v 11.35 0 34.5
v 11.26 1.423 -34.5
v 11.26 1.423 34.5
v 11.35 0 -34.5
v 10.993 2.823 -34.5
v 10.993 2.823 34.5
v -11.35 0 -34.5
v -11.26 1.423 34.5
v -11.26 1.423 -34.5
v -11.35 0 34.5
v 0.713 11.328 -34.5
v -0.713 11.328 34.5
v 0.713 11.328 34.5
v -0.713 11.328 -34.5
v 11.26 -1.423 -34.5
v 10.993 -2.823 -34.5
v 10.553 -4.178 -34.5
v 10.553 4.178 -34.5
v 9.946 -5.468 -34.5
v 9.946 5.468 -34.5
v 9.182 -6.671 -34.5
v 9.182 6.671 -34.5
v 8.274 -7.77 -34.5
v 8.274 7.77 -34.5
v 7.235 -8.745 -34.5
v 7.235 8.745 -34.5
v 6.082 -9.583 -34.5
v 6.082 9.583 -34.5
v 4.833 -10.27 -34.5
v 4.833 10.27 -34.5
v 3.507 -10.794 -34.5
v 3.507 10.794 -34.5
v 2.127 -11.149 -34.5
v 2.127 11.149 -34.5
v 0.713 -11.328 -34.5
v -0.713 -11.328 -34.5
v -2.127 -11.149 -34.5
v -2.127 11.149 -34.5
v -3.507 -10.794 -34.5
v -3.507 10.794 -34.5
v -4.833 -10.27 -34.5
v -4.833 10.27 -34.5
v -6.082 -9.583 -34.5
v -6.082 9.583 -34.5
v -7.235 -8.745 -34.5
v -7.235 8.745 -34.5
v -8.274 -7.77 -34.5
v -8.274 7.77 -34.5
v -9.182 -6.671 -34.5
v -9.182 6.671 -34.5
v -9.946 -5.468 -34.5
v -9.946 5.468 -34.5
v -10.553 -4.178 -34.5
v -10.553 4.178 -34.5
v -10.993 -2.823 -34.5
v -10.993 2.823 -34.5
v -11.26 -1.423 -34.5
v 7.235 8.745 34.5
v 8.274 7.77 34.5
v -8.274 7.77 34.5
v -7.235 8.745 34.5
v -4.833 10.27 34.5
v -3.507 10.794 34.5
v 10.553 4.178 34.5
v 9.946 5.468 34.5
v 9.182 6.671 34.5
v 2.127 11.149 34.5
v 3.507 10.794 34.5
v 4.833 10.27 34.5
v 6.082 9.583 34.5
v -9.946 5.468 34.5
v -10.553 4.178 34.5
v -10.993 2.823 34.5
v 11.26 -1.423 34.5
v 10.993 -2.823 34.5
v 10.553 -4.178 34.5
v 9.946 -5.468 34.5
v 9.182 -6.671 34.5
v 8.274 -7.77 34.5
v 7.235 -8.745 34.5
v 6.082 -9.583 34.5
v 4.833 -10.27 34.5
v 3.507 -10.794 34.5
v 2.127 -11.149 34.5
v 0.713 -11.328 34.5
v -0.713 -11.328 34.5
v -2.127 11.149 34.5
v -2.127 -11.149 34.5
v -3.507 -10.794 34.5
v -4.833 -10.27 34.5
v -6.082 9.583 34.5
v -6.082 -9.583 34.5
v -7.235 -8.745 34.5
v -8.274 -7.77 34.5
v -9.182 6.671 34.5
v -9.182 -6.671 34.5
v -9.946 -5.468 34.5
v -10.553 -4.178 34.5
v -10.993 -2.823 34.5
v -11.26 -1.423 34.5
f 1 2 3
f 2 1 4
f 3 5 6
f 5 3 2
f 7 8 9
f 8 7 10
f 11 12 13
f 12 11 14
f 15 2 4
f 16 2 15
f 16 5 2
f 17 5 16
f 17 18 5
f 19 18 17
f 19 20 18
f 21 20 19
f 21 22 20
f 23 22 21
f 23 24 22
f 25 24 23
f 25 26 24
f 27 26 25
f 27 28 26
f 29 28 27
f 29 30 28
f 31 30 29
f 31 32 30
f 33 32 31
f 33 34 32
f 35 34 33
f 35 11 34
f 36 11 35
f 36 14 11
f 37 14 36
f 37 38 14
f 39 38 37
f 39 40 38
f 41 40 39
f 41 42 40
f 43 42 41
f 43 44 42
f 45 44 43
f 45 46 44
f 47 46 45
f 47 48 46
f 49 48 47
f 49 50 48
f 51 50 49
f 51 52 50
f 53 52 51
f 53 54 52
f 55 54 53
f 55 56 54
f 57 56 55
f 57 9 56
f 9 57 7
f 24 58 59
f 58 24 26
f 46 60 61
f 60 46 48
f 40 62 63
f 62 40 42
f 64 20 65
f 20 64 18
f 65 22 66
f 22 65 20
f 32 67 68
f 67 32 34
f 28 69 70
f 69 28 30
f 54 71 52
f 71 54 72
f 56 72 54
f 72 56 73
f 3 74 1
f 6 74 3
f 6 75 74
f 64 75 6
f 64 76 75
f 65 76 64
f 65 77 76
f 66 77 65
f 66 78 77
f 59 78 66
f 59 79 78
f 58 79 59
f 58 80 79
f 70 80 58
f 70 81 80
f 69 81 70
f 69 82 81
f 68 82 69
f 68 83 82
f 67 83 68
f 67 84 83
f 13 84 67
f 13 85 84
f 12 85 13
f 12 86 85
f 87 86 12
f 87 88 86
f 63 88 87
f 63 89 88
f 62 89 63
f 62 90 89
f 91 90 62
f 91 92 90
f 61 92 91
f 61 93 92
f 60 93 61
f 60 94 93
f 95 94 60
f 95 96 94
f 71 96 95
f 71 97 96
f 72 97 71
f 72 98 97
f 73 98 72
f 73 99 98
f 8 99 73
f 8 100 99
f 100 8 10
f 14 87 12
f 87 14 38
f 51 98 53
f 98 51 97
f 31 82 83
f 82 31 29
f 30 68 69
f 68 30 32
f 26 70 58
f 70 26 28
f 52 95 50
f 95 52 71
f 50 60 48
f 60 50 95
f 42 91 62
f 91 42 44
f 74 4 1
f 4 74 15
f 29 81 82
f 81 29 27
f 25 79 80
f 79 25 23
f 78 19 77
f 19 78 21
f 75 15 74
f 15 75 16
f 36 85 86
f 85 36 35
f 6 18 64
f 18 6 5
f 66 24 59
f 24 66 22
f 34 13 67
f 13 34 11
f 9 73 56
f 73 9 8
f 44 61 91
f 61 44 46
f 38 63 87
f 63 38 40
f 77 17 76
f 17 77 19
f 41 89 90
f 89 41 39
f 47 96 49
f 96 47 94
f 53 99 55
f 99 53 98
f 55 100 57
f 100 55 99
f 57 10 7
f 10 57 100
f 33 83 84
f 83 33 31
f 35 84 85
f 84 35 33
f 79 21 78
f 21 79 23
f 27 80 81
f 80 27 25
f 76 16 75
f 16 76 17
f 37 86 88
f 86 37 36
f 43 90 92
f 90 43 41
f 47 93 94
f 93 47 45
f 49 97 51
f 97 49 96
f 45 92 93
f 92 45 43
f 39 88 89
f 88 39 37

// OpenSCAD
$fn = 50;


difference() {
	union() {
		translate(v = [0, 0, -34.5000000000]) {
			cylinder(h = 69, r = 11.3500000000);
		}
	}
	union() {
		translate(v = [0, 0, -100.0000000000]) {
			cylinder(h = 200, r = 0);
		}
	}
}
